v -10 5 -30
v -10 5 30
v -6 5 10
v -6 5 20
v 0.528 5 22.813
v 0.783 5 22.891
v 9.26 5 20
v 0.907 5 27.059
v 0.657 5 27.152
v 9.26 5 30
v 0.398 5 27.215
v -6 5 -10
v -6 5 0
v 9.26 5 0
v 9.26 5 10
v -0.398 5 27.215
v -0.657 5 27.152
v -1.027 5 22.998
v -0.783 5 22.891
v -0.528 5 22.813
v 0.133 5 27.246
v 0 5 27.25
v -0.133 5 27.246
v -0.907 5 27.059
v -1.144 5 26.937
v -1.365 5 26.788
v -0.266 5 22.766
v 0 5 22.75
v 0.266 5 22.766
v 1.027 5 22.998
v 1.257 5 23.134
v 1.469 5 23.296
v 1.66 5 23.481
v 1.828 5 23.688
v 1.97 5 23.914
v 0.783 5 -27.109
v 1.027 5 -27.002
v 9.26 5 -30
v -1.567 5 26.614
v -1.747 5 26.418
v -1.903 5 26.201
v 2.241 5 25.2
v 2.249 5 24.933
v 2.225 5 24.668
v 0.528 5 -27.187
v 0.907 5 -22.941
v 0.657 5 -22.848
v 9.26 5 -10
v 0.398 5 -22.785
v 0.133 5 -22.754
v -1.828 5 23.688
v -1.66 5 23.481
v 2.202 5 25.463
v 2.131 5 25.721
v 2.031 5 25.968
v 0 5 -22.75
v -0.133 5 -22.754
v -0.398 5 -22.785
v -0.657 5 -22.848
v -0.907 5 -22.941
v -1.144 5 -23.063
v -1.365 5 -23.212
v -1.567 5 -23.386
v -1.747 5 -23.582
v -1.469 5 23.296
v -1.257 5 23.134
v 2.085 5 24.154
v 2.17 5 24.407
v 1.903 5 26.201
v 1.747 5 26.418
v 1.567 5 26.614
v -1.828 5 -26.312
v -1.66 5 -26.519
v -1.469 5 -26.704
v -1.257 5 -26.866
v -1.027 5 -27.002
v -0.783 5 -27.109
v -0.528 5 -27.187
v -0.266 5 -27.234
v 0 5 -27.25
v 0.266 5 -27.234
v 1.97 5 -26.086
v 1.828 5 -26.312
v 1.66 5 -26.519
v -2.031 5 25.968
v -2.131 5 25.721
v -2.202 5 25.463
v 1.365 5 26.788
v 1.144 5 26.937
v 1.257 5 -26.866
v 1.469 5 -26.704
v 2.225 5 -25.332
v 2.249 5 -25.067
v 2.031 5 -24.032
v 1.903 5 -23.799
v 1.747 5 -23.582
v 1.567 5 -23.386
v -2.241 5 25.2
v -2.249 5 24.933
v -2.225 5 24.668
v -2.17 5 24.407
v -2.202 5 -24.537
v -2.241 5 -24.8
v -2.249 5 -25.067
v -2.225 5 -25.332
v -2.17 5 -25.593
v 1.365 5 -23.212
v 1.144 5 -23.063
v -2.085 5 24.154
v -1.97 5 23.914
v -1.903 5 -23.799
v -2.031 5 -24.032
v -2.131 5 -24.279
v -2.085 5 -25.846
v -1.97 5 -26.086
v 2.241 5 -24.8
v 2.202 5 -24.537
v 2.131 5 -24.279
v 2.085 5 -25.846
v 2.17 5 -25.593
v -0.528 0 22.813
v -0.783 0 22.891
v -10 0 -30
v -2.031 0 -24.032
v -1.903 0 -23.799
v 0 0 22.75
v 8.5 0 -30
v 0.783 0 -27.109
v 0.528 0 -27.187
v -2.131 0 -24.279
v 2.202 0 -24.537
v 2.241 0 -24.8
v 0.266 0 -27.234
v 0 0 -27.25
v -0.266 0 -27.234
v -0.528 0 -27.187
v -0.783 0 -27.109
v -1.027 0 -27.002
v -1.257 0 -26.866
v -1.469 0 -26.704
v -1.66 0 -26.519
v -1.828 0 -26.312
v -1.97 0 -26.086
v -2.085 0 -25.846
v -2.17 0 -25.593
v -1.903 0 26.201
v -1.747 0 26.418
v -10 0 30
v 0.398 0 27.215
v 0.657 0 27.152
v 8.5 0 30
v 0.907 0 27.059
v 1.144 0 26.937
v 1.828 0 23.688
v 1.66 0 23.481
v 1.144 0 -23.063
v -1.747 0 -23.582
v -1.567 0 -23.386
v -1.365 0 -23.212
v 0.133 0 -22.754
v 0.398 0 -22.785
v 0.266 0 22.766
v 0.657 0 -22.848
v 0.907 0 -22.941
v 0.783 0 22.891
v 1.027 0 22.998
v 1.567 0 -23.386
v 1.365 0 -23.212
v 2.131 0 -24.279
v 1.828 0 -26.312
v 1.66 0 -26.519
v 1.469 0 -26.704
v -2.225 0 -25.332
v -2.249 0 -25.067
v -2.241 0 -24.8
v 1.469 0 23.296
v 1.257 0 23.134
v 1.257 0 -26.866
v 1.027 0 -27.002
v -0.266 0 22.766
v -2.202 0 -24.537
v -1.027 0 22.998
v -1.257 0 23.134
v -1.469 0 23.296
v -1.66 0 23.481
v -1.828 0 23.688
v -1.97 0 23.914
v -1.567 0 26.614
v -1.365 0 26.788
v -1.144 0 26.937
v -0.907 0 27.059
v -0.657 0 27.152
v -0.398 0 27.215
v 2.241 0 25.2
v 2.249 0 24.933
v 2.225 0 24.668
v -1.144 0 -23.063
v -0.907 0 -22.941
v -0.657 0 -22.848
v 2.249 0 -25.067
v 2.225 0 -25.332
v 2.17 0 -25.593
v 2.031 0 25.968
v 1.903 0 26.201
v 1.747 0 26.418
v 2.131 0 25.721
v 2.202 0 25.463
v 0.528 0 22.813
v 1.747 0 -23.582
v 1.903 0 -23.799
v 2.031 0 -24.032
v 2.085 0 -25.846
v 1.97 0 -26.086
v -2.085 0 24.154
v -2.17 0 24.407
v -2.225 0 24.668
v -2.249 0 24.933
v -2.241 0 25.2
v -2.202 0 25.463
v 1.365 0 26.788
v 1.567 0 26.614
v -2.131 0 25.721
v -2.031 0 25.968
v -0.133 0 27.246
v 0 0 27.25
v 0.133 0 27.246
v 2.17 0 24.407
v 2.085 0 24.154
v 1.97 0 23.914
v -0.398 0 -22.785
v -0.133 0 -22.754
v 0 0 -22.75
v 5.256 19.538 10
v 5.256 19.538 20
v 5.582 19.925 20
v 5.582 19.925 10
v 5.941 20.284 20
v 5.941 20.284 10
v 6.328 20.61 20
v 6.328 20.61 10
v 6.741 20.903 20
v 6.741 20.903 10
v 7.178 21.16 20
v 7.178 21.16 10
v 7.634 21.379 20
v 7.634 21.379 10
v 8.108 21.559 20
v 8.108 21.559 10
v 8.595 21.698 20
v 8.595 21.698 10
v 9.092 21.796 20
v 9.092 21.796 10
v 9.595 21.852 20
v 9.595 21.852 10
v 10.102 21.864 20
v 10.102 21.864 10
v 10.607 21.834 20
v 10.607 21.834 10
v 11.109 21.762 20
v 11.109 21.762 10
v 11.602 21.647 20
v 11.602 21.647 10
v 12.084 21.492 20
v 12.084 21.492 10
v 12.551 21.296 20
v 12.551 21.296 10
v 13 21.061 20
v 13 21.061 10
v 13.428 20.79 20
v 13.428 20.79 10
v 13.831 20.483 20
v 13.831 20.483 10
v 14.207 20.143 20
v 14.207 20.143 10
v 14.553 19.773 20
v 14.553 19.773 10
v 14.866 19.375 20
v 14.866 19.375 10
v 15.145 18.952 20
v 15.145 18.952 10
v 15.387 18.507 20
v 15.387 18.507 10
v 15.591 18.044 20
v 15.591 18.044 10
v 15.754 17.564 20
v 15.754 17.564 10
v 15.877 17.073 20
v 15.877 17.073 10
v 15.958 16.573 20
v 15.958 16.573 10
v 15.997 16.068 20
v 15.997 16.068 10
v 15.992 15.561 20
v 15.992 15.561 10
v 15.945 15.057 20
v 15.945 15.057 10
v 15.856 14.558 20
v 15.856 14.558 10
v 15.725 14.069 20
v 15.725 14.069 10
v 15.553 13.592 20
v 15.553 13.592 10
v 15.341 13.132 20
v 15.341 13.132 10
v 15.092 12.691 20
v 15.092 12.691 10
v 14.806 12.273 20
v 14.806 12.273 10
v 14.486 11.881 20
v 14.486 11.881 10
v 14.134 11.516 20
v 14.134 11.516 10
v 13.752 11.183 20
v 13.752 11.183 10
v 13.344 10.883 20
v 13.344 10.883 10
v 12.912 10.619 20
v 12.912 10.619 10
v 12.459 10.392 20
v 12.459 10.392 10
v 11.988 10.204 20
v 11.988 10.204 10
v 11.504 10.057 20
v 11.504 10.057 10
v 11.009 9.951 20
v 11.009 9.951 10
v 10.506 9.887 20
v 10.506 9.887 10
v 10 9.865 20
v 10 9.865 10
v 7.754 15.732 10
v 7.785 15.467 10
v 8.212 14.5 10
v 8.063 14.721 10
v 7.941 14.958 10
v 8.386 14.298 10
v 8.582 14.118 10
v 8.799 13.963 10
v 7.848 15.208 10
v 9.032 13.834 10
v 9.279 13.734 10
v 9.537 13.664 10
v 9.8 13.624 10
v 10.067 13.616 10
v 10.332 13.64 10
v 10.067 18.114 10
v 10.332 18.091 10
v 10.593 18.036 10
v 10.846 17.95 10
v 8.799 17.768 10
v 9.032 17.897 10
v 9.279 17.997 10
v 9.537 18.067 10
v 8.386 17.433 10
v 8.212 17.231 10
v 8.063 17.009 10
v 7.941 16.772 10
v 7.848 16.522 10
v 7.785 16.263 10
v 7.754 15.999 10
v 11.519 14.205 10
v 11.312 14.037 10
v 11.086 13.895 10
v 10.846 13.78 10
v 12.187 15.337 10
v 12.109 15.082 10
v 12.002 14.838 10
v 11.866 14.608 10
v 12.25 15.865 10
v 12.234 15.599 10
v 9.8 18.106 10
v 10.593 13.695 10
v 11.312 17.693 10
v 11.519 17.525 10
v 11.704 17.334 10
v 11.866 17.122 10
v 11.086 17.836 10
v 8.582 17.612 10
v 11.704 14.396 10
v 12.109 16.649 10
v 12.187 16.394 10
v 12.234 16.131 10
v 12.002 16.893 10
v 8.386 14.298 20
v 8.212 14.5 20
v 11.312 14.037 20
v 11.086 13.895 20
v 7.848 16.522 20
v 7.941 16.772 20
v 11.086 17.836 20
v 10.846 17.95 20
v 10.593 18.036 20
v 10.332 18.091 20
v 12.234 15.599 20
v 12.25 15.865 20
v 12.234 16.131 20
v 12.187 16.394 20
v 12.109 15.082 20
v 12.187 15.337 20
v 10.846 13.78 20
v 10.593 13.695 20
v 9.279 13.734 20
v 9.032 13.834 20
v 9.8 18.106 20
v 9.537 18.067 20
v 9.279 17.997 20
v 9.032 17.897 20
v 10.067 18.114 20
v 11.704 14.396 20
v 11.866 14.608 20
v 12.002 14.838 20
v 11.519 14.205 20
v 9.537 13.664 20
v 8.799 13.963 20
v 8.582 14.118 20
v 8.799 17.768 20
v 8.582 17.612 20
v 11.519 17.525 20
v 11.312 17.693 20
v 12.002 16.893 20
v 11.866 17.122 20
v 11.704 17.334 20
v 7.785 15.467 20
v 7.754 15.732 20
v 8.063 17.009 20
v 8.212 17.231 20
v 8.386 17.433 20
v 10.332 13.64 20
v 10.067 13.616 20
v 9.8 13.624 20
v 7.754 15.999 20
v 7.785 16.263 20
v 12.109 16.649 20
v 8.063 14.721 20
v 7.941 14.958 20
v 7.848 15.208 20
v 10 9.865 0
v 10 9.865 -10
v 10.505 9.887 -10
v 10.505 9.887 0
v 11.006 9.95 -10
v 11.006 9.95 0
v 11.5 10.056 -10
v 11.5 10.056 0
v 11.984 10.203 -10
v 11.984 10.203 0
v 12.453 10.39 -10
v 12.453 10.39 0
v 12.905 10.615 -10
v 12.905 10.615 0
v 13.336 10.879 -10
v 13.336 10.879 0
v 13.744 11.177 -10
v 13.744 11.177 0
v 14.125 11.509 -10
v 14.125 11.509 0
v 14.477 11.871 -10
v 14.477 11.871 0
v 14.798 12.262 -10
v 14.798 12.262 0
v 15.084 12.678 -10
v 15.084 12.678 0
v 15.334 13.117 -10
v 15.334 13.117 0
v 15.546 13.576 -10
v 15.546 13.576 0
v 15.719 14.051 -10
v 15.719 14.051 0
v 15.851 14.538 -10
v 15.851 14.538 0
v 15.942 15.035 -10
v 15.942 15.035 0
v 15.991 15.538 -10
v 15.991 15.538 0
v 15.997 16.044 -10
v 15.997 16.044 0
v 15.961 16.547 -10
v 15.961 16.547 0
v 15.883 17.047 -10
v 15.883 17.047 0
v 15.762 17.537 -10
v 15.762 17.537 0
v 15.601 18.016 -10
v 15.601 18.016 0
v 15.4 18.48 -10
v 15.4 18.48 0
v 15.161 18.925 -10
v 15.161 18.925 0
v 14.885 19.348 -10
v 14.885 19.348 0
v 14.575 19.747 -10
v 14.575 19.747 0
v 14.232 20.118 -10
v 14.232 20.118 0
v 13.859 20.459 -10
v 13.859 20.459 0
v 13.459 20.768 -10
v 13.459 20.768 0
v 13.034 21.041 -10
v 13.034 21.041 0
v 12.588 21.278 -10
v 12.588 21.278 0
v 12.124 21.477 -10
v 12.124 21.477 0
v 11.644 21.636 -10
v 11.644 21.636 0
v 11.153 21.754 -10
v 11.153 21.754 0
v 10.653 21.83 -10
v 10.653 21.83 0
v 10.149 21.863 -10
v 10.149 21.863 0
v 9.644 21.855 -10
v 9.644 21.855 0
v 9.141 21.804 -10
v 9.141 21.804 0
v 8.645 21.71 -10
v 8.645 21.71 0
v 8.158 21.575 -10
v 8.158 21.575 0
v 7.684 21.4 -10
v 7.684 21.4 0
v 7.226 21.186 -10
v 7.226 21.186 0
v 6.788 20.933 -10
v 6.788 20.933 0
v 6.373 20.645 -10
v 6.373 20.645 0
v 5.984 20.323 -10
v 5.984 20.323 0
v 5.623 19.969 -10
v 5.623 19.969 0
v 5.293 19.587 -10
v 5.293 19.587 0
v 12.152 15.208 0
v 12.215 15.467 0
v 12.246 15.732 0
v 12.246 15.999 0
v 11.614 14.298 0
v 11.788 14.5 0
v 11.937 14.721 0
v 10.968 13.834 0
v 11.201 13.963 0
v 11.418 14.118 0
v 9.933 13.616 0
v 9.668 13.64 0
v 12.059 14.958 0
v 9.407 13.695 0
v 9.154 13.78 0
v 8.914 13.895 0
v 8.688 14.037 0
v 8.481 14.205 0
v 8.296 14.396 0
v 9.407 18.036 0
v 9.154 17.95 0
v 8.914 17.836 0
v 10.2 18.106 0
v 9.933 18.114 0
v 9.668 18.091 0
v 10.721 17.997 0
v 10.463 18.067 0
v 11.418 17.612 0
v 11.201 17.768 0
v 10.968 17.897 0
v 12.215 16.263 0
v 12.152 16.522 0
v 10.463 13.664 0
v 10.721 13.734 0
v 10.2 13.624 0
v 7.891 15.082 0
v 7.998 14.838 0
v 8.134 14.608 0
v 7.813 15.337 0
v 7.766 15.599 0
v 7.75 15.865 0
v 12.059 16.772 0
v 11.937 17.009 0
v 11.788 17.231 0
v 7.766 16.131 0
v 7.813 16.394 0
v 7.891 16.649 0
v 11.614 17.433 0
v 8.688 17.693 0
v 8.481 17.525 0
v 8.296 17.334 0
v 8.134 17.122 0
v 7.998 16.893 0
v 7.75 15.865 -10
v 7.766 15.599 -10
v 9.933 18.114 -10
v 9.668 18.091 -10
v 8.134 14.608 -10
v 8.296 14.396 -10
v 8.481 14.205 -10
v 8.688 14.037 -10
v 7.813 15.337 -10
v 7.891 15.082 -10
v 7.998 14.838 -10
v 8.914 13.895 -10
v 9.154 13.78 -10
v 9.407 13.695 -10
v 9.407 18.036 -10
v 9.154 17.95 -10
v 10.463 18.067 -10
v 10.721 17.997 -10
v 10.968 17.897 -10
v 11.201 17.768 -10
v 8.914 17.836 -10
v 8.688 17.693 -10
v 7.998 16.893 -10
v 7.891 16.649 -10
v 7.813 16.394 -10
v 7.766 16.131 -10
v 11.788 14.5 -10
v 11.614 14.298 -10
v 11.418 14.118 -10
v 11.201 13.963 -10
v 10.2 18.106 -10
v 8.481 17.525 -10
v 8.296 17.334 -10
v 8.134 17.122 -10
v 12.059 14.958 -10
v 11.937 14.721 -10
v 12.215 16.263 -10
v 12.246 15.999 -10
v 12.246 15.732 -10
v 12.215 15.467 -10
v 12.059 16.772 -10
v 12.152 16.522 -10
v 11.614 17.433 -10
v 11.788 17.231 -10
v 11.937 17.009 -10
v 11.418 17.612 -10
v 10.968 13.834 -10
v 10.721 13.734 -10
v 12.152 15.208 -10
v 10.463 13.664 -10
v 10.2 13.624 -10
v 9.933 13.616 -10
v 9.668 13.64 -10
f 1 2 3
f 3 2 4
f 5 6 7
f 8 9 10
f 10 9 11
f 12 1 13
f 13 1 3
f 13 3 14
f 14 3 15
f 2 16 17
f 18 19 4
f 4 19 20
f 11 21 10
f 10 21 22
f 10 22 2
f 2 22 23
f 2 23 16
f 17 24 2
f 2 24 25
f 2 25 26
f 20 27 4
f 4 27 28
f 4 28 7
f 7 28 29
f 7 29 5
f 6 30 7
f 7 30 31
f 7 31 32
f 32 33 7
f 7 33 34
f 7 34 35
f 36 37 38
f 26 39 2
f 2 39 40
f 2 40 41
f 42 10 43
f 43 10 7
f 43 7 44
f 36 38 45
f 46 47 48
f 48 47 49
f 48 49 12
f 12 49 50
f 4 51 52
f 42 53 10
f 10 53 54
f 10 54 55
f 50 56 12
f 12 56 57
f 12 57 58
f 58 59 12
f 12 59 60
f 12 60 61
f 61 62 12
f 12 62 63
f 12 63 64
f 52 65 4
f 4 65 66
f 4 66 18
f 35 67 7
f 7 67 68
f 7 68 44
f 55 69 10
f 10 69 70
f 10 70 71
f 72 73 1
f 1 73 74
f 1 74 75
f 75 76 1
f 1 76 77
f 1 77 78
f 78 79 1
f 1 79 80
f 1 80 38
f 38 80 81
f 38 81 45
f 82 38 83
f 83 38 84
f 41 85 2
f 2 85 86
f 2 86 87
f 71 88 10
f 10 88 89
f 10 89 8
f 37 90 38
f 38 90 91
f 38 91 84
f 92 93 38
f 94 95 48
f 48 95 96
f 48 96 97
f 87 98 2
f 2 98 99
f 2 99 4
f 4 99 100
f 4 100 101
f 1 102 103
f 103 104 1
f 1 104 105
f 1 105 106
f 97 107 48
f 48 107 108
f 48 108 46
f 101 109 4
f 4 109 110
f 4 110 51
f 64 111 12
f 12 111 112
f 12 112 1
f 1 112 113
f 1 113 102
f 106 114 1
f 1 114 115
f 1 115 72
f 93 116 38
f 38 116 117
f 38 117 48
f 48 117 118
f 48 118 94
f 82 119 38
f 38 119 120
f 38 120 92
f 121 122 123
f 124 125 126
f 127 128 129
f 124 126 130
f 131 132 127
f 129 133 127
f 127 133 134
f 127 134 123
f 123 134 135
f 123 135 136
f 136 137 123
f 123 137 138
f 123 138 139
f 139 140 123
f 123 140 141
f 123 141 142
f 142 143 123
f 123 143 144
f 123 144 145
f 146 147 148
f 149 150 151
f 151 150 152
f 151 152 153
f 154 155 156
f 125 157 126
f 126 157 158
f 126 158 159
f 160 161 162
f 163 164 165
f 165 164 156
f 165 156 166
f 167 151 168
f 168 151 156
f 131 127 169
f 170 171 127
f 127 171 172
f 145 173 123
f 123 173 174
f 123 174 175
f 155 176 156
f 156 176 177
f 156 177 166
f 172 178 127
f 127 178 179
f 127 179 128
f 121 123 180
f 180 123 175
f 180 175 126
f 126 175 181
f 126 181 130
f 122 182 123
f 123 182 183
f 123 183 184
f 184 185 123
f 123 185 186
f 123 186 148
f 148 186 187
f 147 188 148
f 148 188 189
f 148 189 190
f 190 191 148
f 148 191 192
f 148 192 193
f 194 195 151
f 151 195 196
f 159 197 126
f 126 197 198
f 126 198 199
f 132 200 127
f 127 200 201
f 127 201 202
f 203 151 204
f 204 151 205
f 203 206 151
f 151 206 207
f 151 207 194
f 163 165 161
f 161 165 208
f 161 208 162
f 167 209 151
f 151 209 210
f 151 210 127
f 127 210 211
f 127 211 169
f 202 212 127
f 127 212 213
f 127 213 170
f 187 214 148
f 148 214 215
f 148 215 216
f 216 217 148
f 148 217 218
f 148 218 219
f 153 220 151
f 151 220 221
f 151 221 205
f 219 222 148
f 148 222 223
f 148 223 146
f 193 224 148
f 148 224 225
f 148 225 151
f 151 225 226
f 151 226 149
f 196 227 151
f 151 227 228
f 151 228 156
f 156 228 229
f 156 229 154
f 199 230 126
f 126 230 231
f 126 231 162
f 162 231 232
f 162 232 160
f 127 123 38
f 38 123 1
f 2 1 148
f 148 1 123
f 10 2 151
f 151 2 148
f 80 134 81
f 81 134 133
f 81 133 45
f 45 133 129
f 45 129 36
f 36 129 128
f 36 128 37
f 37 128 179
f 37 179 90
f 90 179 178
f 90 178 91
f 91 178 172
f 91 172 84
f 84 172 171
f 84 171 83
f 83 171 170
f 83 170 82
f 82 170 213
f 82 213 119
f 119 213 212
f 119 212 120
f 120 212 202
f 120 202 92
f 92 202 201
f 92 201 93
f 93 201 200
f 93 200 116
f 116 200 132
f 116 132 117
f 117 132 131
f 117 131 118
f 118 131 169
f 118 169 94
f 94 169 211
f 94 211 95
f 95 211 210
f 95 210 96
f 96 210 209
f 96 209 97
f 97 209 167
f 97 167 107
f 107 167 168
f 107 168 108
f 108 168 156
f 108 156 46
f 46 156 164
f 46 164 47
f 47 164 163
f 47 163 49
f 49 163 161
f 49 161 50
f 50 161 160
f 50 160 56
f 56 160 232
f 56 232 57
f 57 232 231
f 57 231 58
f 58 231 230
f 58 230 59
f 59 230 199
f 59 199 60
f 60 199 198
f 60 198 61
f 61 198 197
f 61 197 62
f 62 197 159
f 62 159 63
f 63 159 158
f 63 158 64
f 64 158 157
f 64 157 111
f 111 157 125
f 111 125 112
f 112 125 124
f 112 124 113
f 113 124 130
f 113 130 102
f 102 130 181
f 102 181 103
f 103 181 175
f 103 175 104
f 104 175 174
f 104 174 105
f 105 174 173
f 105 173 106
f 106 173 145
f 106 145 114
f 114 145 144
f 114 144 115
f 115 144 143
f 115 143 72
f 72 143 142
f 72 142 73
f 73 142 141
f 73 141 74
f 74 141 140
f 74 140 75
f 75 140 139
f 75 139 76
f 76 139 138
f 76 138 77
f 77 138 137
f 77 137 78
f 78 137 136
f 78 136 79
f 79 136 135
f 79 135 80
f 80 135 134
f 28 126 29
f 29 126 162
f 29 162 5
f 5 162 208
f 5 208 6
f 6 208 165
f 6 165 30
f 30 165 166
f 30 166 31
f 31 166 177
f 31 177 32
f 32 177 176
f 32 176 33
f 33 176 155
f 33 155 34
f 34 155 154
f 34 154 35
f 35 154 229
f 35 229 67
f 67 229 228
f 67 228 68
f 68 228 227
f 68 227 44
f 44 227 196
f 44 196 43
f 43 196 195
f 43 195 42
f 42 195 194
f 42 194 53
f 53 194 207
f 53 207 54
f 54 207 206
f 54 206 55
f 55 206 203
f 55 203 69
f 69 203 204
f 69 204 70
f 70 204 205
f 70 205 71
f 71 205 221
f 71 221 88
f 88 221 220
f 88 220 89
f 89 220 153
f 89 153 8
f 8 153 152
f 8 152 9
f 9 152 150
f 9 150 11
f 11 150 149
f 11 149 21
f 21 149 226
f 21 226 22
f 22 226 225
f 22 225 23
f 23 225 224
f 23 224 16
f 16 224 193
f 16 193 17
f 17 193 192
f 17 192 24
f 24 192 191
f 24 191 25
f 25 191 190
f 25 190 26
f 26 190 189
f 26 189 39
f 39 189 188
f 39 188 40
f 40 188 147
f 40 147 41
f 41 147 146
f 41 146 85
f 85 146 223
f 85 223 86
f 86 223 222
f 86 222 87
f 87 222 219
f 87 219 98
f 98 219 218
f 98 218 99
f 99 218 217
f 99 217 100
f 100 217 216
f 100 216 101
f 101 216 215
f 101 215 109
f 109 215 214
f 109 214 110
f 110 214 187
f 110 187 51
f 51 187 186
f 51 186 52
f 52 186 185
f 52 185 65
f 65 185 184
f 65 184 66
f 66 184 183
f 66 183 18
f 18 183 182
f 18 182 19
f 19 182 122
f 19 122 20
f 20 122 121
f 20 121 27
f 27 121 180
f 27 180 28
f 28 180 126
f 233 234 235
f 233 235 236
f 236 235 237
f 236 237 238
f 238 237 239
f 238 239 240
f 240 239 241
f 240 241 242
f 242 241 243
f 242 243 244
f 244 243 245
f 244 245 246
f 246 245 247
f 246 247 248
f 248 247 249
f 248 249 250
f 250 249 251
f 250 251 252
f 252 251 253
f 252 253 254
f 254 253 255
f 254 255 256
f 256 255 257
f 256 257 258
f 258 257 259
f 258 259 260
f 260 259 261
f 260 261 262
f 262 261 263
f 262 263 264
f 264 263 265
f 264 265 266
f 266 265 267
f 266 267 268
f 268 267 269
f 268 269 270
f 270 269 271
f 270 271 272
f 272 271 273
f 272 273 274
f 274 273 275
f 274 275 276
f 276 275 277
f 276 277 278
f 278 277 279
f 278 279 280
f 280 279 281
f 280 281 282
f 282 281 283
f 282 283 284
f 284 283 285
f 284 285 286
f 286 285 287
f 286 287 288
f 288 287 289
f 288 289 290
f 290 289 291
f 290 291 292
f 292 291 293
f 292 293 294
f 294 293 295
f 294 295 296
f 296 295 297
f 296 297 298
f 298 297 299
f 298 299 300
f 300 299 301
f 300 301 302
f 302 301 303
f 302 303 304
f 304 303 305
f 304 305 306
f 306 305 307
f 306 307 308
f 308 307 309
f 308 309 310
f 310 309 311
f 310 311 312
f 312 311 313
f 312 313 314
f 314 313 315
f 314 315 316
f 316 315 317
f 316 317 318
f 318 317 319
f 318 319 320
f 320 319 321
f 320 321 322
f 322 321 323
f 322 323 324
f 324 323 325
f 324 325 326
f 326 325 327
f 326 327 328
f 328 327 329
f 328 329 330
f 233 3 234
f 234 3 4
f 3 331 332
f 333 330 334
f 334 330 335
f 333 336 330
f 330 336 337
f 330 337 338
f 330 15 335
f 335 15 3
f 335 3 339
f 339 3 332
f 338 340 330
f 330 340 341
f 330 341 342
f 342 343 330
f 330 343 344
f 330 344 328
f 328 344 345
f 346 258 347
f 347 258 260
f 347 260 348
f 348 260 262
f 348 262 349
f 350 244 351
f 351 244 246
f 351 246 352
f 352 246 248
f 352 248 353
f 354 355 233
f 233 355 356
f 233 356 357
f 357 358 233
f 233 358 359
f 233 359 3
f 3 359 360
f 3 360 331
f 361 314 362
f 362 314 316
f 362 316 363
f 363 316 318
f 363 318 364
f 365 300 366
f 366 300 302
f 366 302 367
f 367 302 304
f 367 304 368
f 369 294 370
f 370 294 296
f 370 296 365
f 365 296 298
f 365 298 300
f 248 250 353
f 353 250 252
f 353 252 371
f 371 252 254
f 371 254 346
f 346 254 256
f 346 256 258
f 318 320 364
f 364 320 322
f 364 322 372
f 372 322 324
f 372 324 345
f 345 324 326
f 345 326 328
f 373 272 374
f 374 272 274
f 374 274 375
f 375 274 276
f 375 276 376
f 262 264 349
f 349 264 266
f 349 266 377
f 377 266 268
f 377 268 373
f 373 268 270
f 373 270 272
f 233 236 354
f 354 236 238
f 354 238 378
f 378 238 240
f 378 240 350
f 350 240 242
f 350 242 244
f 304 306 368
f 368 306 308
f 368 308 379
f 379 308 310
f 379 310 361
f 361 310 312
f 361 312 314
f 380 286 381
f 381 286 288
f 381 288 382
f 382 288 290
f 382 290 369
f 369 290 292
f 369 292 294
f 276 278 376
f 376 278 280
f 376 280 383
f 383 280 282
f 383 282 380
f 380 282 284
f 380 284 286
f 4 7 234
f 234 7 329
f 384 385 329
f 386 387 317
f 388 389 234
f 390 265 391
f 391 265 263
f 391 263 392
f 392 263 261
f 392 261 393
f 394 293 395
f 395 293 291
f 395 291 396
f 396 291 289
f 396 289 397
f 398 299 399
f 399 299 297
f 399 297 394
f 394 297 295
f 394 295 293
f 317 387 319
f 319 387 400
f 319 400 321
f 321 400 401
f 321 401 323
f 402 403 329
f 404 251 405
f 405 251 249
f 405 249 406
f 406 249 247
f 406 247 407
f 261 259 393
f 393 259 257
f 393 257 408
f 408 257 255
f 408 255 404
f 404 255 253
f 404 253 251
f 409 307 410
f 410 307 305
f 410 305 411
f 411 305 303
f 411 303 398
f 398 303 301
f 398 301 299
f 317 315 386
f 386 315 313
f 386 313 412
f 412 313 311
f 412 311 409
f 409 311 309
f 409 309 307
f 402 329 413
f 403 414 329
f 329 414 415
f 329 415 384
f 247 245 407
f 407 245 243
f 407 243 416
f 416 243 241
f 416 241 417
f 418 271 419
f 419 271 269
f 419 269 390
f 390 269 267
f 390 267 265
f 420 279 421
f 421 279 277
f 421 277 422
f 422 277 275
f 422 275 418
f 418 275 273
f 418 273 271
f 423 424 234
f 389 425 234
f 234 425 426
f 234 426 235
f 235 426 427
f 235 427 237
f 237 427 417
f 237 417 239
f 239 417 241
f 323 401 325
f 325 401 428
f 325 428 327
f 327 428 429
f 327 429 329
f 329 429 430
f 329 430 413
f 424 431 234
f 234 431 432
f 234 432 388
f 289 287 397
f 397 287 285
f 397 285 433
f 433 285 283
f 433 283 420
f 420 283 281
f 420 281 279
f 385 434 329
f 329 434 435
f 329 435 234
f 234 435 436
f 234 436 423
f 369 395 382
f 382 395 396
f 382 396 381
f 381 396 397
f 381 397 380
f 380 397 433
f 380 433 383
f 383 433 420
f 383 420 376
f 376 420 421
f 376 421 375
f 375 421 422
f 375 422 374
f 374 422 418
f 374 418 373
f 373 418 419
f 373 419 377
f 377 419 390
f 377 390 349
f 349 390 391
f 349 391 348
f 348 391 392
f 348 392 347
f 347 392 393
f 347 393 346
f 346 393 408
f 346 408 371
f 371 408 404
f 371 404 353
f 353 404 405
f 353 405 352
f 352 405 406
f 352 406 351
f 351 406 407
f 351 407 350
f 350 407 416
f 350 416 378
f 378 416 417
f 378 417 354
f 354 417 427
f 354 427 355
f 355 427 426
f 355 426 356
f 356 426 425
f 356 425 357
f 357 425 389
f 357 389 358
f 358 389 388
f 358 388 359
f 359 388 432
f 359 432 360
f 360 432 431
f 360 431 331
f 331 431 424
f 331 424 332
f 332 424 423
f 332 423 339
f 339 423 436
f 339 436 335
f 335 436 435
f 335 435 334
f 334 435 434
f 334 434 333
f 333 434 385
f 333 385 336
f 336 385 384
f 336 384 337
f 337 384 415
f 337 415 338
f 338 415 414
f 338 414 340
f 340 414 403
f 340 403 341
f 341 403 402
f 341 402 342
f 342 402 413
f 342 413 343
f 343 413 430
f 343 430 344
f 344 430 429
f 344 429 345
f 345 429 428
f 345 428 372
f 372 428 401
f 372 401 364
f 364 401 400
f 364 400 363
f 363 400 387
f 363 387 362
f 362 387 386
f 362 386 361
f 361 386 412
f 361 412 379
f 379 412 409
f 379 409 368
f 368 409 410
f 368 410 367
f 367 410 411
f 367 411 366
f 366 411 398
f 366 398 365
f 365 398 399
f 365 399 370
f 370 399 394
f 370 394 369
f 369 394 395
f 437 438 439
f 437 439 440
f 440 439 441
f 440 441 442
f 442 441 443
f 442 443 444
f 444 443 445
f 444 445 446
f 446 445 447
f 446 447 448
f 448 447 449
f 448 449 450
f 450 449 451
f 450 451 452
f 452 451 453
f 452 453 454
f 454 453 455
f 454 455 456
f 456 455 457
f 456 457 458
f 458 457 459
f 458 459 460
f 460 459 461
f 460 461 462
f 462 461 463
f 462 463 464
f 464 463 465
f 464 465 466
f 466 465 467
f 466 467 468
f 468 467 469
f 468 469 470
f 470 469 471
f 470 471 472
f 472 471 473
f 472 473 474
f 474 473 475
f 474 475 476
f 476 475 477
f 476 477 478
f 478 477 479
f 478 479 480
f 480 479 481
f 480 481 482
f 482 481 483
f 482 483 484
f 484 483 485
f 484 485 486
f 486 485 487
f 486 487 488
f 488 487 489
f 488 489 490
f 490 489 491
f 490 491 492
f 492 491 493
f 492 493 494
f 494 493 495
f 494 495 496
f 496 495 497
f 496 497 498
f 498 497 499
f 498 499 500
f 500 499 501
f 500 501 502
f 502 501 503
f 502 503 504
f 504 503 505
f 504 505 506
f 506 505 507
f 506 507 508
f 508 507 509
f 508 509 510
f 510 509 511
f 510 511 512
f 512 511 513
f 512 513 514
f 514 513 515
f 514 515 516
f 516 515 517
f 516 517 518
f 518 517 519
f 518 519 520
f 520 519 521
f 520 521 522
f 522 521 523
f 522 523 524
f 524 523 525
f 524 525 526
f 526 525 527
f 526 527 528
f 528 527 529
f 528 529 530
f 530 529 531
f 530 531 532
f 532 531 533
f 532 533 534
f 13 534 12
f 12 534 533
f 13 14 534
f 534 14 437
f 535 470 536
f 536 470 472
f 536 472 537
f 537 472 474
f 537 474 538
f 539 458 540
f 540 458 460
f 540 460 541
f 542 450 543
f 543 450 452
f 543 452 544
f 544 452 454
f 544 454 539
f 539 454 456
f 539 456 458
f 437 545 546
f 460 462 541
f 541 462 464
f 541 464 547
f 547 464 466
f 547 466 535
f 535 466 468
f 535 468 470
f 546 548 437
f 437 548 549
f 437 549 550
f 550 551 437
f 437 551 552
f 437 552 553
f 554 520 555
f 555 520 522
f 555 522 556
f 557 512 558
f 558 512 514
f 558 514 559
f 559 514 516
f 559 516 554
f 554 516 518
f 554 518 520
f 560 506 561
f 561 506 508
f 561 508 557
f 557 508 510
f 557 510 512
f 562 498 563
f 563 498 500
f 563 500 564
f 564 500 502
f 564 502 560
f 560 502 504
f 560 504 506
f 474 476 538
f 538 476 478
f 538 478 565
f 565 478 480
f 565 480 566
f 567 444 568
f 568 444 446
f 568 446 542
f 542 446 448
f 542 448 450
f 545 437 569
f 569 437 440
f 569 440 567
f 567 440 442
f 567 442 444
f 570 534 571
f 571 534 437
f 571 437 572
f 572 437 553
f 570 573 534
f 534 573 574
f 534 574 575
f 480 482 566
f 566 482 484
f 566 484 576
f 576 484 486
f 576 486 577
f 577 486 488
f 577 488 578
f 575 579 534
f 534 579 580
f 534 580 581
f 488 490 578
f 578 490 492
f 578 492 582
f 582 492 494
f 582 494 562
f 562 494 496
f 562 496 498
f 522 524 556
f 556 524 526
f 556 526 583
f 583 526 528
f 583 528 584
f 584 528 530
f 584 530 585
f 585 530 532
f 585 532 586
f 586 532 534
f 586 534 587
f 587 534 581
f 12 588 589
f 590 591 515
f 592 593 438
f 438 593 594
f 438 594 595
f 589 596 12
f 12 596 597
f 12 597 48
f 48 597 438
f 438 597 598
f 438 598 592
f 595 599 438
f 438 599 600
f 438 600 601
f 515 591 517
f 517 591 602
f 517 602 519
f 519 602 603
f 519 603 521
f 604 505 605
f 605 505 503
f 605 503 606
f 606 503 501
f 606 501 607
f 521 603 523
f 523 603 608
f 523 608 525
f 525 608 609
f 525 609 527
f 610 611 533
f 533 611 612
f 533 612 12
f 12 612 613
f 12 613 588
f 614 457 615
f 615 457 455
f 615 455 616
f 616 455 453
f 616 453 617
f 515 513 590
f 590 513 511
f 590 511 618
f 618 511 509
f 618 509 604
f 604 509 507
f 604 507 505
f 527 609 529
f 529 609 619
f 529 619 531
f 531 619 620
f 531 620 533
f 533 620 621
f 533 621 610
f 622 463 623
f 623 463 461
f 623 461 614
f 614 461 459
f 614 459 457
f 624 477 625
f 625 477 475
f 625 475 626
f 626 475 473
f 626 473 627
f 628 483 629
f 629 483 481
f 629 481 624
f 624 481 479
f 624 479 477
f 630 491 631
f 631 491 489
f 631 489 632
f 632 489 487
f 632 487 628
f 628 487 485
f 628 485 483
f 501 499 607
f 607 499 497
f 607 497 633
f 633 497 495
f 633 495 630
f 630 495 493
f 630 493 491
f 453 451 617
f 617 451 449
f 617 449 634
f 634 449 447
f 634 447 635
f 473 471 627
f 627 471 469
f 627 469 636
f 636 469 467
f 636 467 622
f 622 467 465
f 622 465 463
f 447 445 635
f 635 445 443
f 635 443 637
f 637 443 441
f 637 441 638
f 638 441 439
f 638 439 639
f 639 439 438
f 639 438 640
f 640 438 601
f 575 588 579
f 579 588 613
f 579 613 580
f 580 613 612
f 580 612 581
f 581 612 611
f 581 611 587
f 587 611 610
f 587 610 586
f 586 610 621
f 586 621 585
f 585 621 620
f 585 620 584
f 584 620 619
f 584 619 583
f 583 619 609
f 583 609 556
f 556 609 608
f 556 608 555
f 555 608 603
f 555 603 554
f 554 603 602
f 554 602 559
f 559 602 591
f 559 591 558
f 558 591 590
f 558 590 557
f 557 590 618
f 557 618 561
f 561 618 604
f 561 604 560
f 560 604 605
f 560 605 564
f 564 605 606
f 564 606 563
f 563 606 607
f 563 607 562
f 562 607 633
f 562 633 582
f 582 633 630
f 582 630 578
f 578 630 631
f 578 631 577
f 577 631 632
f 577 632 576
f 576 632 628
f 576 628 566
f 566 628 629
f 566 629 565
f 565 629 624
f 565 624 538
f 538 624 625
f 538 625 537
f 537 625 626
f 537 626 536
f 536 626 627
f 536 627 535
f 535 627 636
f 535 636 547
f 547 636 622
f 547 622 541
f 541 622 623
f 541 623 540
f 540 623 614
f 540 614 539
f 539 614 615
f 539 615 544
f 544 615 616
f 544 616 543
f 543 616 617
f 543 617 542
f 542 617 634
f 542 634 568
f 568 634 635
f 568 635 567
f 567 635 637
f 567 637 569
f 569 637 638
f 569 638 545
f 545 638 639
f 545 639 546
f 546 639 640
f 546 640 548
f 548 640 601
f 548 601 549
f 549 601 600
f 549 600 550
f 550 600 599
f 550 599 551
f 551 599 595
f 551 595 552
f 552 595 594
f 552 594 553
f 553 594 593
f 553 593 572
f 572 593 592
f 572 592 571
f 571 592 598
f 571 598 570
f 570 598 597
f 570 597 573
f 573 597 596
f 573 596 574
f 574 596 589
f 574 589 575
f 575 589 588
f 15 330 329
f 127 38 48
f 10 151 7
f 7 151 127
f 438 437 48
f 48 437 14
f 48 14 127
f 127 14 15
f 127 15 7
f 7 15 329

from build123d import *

# Parameters (mm, degrees)
SKETCH1_W           = 20
SKETCH1_H           = 60
SKETCH1_R           = 2.25
BOSS_EXTRUDE1_DEPTH = 5
SKETCH2_R           = 2.25
BOSS_EXTRUDE2_DEPTH = 10
SKETCH3_R           = 2.25
BOSS_EXTRUDE3_DEPTH = 10
CUT_EXTRUDE1_DEPTH  = 61


with BuildPart() as part:
    # Sketch1 → Boss-Extrude1 (new body)
    with BuildSketch(Plane(origin=(0, 0, 0), x_dir=(1, 0, 0), z_dir=(0, 1, 0))):
        Rectangle(SKETCH1_W, SKETCH1_H)
        with Locations((0, 25)):
            Circle(SKETCH1_R, mode=Mode.SUBTRACT)
        with Locations((0, -25)):
            Circle(SKETCH1_R, mode=Mode.SUBTRACT)
    extrude(amount=BOSS_EXTRUDE1_DEPTH)

    # Sketch2 → Boss-Extrude2 (add)
    with BuildSketch(Plane.XY.offset(20)):
        with BuildLine():
            Line((10, 9.86530346), (10, 5))
            Line((10, 5), (-6, 5))
            Line((-6, 5), (5.255684086, 19.53837663))
            ThreePointArc((5.255684086, 19.53837663), (15.386948998, 18.507420129), (10, 9.86530346))
        make_face()
        with Locations((10, 15.86530346)):
            Circle(SKETCH2_R, mode=Mode.SUBTRACT)
    extrude(amount=-BOSS_EXTRUDE2_DEPTH)

    # Sketch3 → Boss-Extrude3 (add)
    with BuildSketch(Plane(origin=(0, 0, -10), x_dir=(-1, 0, 0), z_dir=(0, 0, -1))):
        with BuildLine():
            Line((-10, 9.86530346), (-10, 5))
            Line((-10, 5), (6, 5))
            Line((6, 5), (-5.293415142, 19.586601483))
            ThreePointArc((-5.293415142, 19.586601483), (-15.40036055, 18.479898253), (-10, 9.86530346))
        make_face()
        with Locations((-10, 15.86530346)):
            Circle(SKETCH3_R, mode=Mode.SUBTRACT)
    extrude(amount=-BOSS_EXTRUDE3_DEPTH)

    # Sketch5 → Cut-Extrude1 (cut, through all)
    with BuildSketch(Plane(origin=(0, 0, -30), x_dir=(-1, 0, 0), z_dir=(0, 0, -1))):
        Polygon((-10, 9.86530346), (-10, 0), (-8.5, 0), align=None)
    extrude(amount=-CUT_EXTRUDE1_DEPTH, mode=Mode.SUBTRACT)


solid = part.part
